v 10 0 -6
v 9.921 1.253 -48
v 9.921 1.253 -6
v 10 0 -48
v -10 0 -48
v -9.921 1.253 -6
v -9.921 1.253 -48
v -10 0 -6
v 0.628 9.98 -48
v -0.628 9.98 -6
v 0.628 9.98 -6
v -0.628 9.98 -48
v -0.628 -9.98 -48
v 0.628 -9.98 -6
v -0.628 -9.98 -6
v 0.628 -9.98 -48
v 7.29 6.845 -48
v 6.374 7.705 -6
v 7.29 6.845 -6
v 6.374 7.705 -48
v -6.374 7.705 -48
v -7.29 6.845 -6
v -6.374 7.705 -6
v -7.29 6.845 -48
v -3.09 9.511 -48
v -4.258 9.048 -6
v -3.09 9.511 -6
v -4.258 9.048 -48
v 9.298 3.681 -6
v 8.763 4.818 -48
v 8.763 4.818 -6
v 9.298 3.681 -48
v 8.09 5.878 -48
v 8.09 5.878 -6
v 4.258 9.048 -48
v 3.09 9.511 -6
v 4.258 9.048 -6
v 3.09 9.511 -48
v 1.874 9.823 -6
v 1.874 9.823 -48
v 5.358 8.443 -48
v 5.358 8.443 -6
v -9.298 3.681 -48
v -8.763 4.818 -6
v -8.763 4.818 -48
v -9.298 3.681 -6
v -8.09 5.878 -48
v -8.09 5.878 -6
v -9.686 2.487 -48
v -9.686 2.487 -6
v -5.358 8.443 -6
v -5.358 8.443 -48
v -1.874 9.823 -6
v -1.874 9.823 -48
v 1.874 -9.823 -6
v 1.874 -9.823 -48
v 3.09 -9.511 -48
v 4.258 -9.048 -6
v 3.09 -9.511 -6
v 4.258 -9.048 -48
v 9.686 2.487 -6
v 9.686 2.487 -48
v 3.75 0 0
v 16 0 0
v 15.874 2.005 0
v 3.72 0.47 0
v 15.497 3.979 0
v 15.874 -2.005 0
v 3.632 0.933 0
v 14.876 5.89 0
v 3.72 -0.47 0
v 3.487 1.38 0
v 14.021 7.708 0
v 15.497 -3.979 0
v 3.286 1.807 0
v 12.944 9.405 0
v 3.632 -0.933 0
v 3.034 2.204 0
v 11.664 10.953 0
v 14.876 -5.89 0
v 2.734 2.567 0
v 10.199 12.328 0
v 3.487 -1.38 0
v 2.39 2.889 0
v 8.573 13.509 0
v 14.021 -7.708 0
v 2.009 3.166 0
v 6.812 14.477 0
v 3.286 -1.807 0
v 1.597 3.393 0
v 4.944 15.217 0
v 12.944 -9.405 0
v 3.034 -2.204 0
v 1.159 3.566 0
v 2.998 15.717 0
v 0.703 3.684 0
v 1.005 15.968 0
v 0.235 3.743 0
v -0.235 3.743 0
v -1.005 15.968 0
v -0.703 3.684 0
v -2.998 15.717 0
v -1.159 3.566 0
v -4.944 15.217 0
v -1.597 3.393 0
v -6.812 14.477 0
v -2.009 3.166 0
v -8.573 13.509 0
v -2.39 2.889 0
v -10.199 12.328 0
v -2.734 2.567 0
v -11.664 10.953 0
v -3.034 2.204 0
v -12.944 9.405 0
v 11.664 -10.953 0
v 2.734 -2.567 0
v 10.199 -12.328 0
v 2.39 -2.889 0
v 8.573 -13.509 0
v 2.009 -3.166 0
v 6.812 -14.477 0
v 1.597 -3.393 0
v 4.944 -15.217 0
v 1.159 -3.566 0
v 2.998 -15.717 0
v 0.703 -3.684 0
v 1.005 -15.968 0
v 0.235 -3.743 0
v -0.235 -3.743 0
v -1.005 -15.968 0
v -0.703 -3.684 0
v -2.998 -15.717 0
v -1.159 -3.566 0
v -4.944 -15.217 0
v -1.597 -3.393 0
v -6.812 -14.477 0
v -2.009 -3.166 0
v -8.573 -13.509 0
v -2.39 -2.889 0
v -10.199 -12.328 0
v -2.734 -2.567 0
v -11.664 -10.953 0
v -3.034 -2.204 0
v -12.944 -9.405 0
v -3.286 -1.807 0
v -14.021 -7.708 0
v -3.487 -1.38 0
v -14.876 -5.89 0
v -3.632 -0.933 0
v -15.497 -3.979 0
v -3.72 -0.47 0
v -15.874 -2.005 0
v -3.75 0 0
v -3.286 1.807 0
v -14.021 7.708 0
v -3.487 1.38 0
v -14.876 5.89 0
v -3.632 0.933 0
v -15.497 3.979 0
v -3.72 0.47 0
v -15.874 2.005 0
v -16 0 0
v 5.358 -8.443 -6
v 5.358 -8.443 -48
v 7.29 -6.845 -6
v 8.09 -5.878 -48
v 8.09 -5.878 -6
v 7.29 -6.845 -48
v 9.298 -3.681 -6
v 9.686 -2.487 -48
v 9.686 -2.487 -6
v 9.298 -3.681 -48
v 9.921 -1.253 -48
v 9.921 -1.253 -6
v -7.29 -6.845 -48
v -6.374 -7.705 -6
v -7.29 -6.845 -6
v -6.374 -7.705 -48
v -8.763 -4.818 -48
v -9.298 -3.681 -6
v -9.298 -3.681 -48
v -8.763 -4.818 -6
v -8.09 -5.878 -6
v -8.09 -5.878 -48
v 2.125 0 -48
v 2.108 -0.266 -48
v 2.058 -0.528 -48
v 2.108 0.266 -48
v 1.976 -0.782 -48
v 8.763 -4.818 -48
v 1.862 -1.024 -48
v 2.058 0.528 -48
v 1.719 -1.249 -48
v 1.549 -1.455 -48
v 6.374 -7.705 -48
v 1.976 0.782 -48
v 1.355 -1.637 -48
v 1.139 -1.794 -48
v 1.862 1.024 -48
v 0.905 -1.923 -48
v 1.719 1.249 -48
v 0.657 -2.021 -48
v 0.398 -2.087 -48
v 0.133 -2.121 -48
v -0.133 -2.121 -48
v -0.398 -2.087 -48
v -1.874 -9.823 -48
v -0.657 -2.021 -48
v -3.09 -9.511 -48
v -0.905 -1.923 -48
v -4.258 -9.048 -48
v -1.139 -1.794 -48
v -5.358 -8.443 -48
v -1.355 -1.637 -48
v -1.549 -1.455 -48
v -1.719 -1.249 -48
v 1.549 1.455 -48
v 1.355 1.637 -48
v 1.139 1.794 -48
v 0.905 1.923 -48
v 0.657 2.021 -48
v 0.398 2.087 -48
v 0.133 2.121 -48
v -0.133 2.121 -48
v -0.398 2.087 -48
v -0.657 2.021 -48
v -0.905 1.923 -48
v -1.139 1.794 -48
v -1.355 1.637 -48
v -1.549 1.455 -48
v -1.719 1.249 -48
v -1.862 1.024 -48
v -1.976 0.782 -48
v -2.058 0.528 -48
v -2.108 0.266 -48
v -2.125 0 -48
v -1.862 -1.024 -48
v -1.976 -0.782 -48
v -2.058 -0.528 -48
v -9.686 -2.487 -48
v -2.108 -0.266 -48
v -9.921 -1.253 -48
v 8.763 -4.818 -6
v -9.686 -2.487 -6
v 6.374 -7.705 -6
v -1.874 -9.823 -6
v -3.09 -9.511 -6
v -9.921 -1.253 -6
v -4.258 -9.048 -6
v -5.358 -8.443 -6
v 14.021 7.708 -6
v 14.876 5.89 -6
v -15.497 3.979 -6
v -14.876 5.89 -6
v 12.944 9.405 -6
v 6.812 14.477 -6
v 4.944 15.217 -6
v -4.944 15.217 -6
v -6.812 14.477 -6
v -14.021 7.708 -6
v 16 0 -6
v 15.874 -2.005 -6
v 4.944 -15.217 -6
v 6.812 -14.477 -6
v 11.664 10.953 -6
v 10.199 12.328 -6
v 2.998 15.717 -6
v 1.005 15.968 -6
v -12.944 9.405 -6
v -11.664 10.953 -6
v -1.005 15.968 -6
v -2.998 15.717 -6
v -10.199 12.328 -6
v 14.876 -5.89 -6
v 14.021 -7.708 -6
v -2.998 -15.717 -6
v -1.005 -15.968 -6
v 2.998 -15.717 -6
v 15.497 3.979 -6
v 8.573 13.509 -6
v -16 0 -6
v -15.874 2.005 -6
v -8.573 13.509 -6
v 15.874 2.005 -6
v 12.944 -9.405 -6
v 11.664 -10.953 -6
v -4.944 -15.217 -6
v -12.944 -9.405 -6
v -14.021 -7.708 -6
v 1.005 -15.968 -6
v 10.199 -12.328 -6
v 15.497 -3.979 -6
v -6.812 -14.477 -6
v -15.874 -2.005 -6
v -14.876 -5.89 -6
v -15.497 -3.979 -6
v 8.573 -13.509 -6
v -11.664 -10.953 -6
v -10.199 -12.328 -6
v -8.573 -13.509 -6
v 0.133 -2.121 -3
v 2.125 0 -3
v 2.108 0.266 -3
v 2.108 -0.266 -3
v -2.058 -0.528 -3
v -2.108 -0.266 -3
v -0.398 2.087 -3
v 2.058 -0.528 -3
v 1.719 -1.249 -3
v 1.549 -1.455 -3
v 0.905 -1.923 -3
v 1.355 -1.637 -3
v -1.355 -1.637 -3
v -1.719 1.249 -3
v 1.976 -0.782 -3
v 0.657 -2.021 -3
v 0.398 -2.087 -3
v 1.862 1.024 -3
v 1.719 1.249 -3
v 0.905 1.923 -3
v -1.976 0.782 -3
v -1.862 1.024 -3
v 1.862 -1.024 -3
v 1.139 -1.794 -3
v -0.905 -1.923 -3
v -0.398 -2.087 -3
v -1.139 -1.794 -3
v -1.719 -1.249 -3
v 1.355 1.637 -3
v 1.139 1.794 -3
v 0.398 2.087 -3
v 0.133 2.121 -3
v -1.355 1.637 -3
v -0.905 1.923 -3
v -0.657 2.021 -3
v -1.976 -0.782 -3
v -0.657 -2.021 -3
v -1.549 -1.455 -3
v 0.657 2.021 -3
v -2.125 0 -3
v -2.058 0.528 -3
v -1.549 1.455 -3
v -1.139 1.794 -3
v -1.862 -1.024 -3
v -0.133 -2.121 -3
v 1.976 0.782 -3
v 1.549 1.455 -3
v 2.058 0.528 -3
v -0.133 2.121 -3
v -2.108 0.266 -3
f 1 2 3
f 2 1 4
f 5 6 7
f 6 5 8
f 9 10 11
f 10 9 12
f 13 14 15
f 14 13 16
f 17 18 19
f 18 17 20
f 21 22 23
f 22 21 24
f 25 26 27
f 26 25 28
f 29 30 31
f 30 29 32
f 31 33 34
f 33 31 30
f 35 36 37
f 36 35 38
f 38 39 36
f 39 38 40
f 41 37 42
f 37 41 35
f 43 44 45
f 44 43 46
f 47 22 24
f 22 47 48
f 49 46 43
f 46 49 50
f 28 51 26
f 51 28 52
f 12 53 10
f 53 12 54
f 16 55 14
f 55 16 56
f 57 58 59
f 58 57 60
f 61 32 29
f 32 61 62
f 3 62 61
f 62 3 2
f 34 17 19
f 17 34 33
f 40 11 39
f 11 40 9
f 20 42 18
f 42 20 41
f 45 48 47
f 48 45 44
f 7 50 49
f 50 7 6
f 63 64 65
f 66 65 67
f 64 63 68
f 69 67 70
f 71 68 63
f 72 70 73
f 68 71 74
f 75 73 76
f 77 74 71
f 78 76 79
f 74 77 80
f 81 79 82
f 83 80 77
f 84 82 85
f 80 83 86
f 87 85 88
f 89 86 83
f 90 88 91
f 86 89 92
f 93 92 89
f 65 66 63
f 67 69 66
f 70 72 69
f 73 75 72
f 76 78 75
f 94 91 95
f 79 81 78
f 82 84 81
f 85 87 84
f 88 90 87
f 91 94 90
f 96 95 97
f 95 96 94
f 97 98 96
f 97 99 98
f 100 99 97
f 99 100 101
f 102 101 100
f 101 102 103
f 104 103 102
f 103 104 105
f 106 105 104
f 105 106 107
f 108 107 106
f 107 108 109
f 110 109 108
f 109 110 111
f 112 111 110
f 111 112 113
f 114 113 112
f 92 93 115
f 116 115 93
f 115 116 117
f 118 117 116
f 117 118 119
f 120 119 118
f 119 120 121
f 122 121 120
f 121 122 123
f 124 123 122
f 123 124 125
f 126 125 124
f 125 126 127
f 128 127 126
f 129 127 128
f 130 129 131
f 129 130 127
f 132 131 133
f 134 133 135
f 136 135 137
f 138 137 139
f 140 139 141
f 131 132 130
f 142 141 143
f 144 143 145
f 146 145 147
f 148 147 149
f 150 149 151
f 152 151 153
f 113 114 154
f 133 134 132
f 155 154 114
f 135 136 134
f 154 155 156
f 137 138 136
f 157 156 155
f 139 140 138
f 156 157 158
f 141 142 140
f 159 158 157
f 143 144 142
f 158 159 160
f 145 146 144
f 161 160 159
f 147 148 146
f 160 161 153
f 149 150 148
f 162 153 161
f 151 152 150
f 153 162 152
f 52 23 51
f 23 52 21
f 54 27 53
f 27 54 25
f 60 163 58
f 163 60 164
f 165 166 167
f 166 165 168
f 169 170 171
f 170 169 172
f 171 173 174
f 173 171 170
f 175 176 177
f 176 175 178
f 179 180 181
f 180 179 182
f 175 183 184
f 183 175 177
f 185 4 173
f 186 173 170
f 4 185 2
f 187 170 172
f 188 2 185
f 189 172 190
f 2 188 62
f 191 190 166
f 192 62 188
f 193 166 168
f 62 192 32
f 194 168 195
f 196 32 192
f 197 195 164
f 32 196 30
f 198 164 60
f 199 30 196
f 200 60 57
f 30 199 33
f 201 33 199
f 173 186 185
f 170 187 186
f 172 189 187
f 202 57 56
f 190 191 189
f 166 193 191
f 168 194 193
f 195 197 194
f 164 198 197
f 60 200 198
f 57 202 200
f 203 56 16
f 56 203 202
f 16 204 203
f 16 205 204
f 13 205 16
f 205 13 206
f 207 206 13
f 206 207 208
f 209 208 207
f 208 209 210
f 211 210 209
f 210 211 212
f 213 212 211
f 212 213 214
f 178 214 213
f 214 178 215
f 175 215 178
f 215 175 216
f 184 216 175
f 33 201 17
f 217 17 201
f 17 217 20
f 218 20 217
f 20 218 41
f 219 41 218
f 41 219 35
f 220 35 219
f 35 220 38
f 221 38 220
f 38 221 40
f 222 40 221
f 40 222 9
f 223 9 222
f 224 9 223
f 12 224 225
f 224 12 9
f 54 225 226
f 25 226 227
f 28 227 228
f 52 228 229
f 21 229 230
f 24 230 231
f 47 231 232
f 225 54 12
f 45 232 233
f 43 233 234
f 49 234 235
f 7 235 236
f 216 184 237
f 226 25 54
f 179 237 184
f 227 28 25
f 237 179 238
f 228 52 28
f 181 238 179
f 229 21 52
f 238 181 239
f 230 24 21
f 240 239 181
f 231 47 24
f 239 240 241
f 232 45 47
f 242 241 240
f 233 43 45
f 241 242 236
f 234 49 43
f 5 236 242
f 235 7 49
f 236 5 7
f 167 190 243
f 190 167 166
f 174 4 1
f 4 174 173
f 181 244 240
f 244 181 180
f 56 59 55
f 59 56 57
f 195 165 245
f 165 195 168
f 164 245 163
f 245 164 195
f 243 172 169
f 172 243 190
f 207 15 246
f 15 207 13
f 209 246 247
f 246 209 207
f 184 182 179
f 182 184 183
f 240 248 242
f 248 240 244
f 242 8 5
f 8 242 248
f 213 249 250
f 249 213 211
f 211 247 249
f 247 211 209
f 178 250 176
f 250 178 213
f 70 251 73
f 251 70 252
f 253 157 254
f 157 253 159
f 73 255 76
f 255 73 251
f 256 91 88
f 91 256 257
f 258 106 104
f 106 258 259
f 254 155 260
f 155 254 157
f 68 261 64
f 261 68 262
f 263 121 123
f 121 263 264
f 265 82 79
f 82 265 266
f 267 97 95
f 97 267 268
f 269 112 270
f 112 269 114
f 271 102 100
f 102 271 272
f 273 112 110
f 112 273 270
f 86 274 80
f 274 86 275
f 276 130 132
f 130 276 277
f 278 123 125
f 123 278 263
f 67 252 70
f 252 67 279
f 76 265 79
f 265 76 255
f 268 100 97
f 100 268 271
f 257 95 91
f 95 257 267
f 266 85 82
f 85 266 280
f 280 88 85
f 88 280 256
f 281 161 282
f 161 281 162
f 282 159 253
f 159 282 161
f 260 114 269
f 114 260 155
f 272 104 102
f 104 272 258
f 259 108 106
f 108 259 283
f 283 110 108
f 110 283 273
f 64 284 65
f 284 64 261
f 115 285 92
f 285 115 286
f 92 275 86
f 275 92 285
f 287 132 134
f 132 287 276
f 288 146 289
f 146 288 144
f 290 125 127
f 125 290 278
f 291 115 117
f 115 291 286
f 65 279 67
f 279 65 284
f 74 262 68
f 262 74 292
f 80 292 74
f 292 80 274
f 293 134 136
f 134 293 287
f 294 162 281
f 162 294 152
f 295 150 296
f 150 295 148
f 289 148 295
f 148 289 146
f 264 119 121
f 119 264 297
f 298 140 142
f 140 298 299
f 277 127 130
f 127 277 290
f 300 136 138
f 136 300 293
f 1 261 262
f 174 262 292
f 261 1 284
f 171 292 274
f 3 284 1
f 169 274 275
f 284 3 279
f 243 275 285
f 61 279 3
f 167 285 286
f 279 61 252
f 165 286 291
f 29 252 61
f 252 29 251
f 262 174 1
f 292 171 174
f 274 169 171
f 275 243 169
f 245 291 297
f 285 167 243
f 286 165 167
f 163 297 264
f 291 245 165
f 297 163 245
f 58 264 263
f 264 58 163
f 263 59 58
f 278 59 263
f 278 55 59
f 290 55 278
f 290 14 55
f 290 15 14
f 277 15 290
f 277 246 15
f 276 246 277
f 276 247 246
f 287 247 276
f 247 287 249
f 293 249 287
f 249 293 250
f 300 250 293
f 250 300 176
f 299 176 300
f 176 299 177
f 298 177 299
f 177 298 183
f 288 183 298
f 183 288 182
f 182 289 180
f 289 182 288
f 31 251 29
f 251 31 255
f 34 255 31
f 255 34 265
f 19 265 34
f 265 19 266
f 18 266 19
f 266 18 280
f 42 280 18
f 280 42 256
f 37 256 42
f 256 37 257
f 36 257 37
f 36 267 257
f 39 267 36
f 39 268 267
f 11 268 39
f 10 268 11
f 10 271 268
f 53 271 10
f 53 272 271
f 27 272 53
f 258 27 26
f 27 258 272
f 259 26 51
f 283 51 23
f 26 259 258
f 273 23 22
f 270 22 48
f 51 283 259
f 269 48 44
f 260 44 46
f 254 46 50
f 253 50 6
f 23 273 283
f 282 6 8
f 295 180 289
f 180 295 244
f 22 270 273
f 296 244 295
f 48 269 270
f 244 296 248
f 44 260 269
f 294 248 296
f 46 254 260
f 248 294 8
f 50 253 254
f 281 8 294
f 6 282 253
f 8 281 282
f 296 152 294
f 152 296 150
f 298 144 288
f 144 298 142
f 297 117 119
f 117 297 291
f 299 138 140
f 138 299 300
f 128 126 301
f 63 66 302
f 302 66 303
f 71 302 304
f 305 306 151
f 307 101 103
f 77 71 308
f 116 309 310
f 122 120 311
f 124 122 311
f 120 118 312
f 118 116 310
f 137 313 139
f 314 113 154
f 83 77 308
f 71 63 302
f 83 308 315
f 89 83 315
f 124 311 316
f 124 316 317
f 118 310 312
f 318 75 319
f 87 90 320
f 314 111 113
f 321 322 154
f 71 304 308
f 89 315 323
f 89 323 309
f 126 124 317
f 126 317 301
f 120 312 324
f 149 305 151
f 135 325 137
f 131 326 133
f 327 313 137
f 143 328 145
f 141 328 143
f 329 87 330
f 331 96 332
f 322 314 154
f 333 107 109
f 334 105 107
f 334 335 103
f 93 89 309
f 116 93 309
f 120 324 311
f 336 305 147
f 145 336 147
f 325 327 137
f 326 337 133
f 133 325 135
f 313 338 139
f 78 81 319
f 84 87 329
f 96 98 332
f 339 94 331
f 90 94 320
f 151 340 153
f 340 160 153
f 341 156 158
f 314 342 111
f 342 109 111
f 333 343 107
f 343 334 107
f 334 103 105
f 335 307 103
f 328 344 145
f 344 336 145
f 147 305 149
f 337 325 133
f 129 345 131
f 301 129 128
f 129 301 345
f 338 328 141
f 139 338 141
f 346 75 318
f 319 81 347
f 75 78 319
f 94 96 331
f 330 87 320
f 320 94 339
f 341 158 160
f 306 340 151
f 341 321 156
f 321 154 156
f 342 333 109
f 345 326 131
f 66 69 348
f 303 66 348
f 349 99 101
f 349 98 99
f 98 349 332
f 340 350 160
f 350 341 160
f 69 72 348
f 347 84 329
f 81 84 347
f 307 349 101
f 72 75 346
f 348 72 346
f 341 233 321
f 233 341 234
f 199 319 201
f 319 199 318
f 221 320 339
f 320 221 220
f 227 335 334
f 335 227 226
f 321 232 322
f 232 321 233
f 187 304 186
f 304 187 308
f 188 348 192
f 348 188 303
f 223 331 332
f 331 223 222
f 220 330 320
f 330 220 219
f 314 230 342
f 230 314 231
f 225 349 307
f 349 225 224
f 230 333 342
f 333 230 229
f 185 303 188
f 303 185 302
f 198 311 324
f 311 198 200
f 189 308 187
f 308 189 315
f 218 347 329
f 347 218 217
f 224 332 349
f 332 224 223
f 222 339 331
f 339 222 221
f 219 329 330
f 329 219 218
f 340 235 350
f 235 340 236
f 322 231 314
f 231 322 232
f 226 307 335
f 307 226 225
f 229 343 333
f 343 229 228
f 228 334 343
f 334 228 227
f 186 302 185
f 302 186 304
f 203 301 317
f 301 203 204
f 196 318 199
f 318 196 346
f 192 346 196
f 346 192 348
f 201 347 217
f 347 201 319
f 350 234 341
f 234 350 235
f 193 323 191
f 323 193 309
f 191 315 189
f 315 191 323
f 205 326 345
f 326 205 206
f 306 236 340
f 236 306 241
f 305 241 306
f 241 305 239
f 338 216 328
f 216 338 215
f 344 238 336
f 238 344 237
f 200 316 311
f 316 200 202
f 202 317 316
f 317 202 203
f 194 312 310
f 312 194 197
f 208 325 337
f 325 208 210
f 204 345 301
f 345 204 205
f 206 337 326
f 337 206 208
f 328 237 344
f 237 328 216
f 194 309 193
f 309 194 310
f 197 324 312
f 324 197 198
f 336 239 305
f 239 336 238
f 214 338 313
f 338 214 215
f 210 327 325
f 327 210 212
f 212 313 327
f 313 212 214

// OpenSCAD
$fn = 50;


difference() {
	union() {
		translate(v = [0, 0, -48.0000000000]) {
			cylinder(h = 48, r = 10.0000000000);
		}
		translate(v = [0, 0, -6.0000000000]) {
			cylinder(h = 6, r = 16.0000000000);
		}
	}
	union() {
		translate(v = [0, 0, 0]) {
			rotate(a = [0, 0, 0]) {
				difference() {
					union() {
						#translate(v = [0, 0, -48.0000000000]) {
							cylinder(h = 48, r = 2.0000000000);
						}
						#translate(v = [0, 0, -3]) {
							cylinder(h = 3, r = 10.0000000000, r1 = 2.1250000000, r2 = 3.7500000000);
						}
						#translate(v = [0, 0, -48.0000000000]) {
							cylinder(h = 48, r = 2.1250000000);
						}
						#translate(v = [0, 0, -48.0000000000]) {
							cylinder(h = 48, r = 2.0000000000);
						}
					}
					union();
				}
			}
		}
	}
}
